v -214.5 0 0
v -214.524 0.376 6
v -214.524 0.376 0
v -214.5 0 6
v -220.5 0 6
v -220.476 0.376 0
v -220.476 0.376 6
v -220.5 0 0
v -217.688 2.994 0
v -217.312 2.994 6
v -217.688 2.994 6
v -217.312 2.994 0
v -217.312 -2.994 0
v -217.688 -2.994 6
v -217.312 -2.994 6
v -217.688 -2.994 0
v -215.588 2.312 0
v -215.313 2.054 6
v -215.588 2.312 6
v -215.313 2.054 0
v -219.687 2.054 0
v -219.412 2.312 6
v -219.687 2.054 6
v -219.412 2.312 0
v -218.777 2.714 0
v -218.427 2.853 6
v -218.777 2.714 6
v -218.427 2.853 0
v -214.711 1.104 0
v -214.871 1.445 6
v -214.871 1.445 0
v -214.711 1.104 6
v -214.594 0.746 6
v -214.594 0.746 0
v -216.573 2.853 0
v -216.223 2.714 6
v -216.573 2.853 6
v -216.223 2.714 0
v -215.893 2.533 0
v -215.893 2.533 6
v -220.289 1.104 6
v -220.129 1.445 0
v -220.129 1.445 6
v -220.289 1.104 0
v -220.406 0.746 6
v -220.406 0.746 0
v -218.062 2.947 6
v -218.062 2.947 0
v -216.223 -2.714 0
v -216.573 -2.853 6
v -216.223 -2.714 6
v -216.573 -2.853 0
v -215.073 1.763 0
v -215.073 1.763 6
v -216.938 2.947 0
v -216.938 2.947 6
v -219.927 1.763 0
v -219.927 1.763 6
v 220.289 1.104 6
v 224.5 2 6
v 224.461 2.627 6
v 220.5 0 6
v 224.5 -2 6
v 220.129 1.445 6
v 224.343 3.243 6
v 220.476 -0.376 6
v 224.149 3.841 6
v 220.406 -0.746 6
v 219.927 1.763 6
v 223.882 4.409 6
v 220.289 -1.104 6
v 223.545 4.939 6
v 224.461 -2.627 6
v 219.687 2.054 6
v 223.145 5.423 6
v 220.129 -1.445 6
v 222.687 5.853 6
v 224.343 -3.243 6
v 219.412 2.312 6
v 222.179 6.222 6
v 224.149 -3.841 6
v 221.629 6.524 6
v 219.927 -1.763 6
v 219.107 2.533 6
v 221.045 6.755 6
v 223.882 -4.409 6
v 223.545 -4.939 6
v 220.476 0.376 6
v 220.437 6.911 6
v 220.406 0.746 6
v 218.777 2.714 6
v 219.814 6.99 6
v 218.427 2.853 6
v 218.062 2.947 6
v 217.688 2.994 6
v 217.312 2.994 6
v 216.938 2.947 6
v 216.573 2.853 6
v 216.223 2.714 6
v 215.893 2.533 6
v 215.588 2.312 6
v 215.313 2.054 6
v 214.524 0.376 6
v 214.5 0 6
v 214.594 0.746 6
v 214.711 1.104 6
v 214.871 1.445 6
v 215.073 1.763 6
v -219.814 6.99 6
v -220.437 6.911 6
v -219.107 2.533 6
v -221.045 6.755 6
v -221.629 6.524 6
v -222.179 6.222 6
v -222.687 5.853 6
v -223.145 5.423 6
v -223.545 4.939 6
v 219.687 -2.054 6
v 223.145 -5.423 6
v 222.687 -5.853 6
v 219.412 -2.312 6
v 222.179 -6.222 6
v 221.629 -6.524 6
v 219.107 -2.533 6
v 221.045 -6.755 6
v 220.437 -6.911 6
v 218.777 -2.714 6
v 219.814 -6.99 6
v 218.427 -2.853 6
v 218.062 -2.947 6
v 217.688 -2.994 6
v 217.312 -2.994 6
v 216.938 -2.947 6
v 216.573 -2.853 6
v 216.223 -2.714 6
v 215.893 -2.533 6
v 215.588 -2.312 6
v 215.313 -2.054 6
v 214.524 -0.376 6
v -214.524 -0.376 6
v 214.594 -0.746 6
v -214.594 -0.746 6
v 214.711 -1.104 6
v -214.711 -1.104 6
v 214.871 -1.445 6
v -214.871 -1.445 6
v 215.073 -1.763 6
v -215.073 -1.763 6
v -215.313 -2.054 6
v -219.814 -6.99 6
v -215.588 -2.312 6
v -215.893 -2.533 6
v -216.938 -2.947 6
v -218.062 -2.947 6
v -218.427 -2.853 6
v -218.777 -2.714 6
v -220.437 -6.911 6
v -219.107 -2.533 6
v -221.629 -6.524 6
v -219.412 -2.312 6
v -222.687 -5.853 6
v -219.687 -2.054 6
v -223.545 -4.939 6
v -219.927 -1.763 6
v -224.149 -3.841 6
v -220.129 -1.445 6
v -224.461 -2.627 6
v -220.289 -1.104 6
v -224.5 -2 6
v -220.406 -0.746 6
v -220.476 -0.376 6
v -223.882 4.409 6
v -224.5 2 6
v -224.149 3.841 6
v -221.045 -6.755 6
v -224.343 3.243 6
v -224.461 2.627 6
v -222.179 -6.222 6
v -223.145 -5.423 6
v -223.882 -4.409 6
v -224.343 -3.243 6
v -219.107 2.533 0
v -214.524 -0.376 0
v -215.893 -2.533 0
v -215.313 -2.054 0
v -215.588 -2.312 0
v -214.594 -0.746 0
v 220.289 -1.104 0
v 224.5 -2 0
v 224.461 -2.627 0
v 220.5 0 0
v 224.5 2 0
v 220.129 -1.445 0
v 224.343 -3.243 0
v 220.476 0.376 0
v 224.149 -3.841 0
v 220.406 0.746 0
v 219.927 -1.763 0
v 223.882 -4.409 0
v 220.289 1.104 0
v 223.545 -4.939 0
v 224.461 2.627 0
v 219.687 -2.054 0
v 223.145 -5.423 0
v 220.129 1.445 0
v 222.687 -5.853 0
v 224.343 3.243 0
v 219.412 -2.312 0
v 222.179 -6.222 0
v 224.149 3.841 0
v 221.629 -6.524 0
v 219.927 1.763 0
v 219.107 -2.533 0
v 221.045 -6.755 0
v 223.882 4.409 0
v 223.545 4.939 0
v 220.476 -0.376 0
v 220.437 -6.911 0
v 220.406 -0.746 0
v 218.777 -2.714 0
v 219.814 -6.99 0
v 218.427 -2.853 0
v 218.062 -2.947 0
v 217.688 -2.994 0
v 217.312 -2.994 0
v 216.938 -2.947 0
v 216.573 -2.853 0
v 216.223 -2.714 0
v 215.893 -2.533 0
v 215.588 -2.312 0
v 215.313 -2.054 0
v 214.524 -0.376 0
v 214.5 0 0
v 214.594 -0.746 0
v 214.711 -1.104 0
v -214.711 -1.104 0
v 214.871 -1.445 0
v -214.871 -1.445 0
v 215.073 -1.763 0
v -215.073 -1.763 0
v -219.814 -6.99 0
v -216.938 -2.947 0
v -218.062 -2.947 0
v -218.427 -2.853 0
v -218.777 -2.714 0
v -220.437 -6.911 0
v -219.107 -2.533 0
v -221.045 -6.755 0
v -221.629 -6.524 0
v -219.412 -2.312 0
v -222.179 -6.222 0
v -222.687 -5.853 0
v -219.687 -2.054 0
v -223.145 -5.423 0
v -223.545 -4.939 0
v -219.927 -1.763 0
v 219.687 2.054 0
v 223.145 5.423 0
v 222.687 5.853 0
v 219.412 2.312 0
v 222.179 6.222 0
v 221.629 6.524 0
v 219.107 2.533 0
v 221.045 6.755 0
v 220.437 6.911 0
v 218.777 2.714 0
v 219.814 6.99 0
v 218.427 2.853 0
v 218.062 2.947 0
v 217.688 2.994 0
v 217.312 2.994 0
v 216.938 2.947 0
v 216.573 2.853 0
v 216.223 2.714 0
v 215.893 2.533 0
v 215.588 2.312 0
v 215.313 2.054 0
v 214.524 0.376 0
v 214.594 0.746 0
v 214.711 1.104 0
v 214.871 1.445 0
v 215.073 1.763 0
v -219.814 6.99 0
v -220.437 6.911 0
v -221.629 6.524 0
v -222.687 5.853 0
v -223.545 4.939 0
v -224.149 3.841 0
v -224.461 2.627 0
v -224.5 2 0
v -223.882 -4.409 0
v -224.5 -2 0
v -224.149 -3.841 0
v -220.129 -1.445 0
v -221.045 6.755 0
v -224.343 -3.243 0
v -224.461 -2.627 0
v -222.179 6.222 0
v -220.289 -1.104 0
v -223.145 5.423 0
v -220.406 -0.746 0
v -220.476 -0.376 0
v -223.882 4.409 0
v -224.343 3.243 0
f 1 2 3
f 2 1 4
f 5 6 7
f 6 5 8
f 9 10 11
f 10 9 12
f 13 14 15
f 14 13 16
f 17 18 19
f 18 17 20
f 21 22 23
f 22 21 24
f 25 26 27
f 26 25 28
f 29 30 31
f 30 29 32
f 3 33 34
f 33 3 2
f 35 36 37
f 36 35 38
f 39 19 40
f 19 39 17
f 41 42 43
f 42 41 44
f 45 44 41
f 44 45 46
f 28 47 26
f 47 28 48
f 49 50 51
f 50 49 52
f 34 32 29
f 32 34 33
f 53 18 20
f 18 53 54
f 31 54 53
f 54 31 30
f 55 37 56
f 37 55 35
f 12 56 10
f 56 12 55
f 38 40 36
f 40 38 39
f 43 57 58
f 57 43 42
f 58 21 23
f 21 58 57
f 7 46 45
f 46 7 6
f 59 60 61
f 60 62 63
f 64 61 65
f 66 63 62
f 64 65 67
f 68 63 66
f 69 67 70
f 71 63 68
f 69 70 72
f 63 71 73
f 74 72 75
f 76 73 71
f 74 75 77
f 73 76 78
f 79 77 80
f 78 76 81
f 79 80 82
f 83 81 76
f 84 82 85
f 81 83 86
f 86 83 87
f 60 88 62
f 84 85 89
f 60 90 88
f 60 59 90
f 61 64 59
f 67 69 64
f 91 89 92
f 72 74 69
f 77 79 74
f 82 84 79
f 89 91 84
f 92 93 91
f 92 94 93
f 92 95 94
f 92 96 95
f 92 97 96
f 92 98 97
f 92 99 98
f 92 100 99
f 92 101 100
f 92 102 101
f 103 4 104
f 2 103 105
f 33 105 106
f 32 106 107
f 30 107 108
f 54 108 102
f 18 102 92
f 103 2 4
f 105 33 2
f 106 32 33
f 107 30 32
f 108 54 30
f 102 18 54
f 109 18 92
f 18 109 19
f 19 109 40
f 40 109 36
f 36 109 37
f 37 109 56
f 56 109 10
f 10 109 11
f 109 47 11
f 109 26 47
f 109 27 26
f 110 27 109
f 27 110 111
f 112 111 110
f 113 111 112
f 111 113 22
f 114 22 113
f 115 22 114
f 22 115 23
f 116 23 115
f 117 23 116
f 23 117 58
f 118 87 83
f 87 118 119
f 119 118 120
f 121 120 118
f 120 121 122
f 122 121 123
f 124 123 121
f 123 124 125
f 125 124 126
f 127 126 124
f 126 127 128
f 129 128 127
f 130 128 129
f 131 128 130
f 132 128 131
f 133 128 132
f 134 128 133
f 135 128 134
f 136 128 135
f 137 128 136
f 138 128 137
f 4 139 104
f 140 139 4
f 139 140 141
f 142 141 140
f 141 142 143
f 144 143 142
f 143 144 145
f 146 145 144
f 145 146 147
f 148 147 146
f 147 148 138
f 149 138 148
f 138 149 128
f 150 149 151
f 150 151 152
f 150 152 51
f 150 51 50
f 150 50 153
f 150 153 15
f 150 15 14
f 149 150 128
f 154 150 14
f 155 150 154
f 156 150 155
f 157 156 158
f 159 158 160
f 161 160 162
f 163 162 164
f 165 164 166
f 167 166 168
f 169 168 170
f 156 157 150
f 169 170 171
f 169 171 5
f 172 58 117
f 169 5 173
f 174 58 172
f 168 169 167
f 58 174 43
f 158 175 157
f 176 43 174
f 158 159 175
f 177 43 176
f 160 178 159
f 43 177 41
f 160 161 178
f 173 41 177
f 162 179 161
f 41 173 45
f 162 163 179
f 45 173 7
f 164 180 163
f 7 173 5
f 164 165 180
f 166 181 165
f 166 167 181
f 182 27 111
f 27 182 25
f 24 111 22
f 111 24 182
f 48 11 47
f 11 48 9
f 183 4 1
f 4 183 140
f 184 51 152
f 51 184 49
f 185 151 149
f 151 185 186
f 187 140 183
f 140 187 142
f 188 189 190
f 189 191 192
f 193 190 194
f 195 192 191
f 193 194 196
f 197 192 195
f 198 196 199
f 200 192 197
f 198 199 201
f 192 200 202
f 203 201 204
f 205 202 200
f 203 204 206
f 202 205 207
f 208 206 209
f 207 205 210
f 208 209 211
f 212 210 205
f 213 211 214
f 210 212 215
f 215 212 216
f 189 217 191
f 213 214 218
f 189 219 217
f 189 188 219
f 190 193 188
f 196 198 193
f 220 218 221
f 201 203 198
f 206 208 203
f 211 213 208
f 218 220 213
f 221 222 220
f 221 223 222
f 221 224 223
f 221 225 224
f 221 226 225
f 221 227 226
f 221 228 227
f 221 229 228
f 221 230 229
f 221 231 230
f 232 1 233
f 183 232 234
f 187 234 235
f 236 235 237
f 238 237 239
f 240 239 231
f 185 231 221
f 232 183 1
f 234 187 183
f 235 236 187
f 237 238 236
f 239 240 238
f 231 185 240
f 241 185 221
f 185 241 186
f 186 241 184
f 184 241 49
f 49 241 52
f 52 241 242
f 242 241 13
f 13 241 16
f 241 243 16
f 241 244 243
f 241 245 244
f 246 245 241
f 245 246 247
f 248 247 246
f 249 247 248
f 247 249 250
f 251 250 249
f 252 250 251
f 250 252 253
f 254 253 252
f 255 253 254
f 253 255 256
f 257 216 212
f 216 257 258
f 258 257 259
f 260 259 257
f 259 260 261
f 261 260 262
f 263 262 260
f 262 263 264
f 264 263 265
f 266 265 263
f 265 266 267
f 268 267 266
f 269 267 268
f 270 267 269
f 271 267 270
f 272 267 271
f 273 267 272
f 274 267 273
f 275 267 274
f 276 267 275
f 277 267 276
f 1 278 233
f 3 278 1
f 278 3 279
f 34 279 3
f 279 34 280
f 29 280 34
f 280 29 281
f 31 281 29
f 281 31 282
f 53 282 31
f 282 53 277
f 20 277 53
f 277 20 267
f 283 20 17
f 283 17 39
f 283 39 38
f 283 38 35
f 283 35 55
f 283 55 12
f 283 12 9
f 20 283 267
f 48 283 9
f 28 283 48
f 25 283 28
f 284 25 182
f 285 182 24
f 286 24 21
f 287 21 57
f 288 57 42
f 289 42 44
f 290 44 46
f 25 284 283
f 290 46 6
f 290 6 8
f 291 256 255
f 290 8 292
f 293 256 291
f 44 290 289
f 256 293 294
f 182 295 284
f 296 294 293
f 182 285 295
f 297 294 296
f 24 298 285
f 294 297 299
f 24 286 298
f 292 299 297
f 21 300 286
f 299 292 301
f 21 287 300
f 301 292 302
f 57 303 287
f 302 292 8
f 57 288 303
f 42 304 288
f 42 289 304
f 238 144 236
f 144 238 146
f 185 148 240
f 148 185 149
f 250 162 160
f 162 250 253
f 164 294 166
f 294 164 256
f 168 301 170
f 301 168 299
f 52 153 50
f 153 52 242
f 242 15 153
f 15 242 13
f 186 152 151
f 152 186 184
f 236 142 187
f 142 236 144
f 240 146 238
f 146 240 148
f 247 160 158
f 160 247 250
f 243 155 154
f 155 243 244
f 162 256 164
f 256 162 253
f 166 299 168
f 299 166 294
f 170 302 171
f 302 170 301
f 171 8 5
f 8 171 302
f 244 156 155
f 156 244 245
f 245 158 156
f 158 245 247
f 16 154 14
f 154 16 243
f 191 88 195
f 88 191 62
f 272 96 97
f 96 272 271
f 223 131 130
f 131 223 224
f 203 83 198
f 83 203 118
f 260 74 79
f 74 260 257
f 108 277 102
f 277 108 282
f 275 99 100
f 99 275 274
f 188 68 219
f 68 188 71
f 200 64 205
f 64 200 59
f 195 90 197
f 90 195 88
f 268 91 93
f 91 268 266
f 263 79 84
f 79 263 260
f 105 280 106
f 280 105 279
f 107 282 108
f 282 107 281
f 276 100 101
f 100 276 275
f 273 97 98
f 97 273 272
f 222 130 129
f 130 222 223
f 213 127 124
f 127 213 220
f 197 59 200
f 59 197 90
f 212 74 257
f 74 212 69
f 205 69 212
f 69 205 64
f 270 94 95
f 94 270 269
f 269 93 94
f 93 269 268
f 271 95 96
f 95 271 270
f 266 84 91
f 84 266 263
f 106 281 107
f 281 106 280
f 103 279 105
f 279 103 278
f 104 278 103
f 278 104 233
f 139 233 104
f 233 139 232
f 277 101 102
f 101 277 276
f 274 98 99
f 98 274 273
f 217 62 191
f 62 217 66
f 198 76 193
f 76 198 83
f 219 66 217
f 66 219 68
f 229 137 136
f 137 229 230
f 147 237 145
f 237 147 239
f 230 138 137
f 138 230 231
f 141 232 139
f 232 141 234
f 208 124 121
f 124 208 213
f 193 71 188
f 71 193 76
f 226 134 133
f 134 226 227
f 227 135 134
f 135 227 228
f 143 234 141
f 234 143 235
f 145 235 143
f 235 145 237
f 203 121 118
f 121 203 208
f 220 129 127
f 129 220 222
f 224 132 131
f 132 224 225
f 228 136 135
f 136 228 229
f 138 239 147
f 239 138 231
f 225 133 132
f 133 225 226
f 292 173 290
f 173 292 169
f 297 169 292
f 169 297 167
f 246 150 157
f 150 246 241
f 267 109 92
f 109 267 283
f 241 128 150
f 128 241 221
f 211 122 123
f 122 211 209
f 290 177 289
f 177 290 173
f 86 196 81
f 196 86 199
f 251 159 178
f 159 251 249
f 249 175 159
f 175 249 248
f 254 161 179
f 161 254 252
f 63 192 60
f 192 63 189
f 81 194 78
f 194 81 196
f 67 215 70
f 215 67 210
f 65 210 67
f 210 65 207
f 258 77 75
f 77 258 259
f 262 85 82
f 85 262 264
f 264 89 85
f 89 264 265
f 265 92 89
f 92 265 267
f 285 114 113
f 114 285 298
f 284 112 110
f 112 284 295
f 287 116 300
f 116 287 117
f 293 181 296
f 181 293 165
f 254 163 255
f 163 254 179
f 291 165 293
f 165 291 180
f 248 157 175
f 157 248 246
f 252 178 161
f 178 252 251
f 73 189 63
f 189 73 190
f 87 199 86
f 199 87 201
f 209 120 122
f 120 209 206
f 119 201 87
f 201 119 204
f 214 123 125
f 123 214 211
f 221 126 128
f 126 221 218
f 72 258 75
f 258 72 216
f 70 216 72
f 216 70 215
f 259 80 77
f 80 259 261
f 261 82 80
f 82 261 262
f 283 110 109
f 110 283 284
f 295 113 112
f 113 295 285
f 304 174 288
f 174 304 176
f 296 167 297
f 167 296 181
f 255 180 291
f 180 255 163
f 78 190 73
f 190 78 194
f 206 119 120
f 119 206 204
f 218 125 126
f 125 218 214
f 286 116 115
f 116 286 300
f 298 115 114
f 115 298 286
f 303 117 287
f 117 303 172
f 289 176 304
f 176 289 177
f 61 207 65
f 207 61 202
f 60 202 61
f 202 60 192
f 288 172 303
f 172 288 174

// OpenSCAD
$fn = 50;


difference() {
	union() {
		hull() {
			translate(v = [-219.5000000000, 2.0000000000, 0]) {
				cylinder(h = 6, r = 5);
			}
			translate(v = [219.5000000000, 2.0000000000, 0]) {
				cylinder(h = 6, r = 5);
			}
			translate(v = [-219.5000000000, -2.0000000000, 0]) {
				cylinder(h = 6, r = 5);
			}
			translate(v = [219.5000000000, -2.0000000000, 0]) {
				cylinder(h = 6, r = 5);
			}
		}
	}
	union() {
		translate(v = [-217.5000000000, 0.0000000000, 0]) {
			cylinder(h = 6, r = 3.0000000000);
		}
		translate(v = [217.5000000000, 0.0000000000, 0]) {
			cylinder(h = 6, r = 3.0000000000);
		}
		translate(v = [-217.5000000000, 0.0000000000, 0]) {
			cylinder(h = 6, r = 1.5000000000);
		}
		translate(v = [217.5000000000, 0.0000000000, 0]) {
			cylinder(h = 6, r = 1.5000000000);
		}
		translate(v = [-217.5000000000, 0.0000000000, 0]) {
			cylinder(h = 6, r = 1.5000000000);
		}
		translate(v = [217.5000000000, 0.0000000000, 0]) {
			cylinder(h = 6, r = 1.5000000000);
		}
		translate(v = [-217.5000000000, 0.0000000000, 0]) {
			cylinder(h = 6, r = 1.5000000000);
		}
		translate(v = [217.5000000000, 0.0000000000, 0]) {
			cylinder(h = 6, r = 1.5000000000);
		}
	}
}
